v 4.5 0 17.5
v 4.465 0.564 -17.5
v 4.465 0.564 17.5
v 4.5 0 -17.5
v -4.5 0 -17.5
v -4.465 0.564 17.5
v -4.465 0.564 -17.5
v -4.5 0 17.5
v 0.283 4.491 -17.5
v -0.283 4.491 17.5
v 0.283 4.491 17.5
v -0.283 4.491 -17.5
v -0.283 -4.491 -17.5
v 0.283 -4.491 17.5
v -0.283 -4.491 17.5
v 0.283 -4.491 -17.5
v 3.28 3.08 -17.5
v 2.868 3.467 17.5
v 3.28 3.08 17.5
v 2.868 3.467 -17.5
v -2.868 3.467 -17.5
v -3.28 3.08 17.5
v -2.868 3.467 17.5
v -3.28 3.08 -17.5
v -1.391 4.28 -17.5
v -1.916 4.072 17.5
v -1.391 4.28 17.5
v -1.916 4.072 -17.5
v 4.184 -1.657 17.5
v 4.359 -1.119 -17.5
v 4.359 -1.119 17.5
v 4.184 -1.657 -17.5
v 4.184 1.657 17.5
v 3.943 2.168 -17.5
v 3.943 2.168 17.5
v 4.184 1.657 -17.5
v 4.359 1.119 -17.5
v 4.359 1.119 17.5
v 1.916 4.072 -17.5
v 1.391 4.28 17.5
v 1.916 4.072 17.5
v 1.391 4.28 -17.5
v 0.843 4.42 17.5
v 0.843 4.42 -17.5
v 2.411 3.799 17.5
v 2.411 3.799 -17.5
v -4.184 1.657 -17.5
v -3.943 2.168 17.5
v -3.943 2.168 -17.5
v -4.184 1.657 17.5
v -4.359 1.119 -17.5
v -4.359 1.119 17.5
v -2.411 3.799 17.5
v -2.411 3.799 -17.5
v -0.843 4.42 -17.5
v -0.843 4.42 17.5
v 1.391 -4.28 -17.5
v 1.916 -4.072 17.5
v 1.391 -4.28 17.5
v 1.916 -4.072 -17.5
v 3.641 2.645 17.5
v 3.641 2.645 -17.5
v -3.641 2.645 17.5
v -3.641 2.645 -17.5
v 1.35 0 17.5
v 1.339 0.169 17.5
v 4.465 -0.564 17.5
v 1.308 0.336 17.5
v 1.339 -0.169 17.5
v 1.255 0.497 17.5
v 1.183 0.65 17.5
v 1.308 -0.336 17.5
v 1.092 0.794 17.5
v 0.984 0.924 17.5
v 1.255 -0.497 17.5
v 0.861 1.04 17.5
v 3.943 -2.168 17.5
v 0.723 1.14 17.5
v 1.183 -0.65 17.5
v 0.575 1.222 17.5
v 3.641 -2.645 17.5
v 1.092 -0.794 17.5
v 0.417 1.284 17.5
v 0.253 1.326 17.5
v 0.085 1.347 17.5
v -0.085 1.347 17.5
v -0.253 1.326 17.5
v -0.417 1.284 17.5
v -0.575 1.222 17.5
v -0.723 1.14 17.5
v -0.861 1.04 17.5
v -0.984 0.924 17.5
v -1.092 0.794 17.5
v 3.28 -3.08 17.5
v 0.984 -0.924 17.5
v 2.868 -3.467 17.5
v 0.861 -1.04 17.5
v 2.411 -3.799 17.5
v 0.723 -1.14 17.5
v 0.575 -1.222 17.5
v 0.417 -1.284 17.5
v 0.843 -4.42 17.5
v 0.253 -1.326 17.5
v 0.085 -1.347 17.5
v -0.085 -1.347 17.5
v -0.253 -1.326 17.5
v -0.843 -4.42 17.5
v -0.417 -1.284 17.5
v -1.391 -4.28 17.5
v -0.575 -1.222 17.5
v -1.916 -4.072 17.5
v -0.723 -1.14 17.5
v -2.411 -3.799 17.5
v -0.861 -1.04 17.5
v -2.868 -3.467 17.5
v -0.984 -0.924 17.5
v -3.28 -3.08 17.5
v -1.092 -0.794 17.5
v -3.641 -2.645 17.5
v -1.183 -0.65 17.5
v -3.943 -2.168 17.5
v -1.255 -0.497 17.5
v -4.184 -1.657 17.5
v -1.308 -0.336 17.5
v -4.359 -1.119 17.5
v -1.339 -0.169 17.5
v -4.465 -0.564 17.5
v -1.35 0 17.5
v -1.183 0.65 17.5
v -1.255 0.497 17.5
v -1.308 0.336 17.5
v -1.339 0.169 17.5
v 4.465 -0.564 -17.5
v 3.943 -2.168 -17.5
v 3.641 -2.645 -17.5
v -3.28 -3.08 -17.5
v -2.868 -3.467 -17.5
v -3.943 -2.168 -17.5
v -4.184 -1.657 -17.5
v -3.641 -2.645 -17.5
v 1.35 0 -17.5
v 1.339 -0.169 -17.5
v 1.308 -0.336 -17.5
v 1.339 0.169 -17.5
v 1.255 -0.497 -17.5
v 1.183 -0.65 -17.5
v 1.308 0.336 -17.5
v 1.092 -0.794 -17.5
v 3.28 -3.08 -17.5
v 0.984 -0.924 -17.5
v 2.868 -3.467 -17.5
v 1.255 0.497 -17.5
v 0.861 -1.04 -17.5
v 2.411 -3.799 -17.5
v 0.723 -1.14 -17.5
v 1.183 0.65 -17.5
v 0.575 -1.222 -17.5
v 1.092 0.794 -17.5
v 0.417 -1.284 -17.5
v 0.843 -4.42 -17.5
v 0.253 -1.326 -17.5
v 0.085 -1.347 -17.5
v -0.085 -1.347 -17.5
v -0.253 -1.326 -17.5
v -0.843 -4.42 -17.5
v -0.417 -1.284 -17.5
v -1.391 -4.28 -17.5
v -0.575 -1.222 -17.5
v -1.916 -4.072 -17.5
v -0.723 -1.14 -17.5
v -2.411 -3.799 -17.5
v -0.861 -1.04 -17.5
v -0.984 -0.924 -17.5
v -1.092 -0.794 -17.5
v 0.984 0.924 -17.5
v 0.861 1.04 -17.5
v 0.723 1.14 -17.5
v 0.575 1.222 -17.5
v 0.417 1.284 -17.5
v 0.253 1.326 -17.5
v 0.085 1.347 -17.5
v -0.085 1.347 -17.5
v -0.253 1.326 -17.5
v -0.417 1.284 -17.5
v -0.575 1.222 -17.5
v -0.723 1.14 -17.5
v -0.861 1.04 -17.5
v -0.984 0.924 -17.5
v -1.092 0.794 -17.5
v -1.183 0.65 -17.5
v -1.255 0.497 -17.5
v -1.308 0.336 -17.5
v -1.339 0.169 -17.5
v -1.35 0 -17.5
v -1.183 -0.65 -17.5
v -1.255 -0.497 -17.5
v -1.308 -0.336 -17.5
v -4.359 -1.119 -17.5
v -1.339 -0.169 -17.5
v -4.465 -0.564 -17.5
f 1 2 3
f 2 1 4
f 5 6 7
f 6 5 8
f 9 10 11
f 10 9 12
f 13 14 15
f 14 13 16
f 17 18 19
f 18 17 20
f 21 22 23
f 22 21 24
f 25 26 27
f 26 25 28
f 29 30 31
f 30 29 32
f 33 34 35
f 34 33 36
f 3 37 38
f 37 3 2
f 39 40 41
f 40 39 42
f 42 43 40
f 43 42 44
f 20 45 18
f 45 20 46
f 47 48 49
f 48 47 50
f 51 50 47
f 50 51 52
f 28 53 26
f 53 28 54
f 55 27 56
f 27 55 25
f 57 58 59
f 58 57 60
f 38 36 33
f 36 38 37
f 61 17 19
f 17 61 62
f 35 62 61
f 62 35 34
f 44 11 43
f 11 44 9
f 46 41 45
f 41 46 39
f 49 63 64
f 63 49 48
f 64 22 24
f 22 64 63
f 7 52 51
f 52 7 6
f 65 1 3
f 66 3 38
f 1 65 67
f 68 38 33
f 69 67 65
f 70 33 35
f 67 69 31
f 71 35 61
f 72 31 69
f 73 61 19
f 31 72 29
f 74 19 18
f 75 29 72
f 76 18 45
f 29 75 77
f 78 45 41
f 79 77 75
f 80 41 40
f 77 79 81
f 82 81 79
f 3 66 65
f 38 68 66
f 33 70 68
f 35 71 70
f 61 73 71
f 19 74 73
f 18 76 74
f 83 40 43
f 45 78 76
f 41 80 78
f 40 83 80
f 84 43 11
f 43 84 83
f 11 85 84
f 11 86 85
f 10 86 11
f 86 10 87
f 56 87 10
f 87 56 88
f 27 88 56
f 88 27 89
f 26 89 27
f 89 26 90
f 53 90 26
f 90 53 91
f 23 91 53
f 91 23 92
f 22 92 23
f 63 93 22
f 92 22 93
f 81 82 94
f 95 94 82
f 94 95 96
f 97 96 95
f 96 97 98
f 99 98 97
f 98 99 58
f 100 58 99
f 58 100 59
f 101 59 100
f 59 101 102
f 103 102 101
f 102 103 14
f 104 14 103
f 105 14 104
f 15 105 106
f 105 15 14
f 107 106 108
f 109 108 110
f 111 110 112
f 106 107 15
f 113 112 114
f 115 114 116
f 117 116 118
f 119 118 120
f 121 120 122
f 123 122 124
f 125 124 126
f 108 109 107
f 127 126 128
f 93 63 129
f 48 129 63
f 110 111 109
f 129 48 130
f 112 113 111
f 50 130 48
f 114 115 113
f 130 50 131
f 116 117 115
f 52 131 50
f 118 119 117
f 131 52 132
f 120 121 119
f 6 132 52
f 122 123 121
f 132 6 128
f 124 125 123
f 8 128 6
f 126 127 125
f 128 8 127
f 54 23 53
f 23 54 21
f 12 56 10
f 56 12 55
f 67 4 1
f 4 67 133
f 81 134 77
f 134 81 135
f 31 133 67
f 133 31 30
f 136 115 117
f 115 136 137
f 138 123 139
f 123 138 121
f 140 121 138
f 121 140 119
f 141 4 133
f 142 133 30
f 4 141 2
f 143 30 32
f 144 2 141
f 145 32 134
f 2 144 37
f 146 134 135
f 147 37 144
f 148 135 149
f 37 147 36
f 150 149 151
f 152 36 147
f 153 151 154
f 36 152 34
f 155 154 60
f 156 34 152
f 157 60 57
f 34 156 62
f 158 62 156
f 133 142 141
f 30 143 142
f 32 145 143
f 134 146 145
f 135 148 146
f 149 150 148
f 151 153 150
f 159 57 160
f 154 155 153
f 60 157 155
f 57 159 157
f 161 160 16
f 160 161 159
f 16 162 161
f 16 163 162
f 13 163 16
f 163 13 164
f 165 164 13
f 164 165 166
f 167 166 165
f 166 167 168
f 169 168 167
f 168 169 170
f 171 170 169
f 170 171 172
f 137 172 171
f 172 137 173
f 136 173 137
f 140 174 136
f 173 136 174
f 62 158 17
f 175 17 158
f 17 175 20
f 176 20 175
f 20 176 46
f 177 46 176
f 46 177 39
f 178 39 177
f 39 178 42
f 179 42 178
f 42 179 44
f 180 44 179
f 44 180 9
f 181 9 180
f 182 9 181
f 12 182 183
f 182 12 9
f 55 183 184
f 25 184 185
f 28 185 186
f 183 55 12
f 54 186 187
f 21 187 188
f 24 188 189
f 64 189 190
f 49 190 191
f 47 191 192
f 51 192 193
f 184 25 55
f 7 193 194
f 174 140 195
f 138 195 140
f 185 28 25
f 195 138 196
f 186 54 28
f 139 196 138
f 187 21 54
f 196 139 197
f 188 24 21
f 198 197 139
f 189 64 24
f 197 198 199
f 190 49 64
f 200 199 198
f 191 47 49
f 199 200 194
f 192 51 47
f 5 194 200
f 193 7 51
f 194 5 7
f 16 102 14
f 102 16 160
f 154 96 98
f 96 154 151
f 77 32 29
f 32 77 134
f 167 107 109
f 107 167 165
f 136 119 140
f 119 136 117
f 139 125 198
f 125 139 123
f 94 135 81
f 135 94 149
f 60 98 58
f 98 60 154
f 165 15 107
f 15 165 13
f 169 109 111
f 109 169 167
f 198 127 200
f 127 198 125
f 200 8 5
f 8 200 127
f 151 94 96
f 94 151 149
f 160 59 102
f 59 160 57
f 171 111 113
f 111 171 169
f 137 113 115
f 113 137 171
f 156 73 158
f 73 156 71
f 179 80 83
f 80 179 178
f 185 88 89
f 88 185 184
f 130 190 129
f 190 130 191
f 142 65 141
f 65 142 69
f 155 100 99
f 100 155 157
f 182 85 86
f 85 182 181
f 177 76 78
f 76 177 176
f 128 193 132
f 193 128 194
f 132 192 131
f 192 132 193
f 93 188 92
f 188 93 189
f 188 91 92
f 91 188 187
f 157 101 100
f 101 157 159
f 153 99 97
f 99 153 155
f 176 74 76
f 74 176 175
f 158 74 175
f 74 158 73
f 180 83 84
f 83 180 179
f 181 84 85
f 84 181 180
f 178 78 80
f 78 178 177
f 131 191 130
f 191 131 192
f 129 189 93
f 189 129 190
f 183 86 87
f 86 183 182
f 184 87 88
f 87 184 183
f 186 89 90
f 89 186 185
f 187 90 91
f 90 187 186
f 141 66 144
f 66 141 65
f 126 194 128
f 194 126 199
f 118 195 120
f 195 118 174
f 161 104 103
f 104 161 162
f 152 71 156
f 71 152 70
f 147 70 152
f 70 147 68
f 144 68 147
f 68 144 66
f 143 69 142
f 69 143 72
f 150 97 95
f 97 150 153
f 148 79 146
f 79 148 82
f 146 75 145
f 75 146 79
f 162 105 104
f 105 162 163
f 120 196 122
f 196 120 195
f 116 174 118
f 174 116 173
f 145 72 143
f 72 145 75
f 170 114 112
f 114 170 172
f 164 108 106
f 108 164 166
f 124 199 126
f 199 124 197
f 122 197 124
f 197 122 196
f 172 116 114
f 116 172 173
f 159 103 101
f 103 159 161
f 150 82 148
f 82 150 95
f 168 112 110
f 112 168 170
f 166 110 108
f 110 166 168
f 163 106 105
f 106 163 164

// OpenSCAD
$fn = 50;


difference() {
	union() {
		translate(v = [0, 0, -17.5000000000]) {
			cylinder(h = 35, r = 4.5000000000);
		}
	}
	union() {
		translate(v = [0, 0, -100.0000000000]) {
			cylinder(h = 200, r = 1.3500000000);
		}
	}
}
